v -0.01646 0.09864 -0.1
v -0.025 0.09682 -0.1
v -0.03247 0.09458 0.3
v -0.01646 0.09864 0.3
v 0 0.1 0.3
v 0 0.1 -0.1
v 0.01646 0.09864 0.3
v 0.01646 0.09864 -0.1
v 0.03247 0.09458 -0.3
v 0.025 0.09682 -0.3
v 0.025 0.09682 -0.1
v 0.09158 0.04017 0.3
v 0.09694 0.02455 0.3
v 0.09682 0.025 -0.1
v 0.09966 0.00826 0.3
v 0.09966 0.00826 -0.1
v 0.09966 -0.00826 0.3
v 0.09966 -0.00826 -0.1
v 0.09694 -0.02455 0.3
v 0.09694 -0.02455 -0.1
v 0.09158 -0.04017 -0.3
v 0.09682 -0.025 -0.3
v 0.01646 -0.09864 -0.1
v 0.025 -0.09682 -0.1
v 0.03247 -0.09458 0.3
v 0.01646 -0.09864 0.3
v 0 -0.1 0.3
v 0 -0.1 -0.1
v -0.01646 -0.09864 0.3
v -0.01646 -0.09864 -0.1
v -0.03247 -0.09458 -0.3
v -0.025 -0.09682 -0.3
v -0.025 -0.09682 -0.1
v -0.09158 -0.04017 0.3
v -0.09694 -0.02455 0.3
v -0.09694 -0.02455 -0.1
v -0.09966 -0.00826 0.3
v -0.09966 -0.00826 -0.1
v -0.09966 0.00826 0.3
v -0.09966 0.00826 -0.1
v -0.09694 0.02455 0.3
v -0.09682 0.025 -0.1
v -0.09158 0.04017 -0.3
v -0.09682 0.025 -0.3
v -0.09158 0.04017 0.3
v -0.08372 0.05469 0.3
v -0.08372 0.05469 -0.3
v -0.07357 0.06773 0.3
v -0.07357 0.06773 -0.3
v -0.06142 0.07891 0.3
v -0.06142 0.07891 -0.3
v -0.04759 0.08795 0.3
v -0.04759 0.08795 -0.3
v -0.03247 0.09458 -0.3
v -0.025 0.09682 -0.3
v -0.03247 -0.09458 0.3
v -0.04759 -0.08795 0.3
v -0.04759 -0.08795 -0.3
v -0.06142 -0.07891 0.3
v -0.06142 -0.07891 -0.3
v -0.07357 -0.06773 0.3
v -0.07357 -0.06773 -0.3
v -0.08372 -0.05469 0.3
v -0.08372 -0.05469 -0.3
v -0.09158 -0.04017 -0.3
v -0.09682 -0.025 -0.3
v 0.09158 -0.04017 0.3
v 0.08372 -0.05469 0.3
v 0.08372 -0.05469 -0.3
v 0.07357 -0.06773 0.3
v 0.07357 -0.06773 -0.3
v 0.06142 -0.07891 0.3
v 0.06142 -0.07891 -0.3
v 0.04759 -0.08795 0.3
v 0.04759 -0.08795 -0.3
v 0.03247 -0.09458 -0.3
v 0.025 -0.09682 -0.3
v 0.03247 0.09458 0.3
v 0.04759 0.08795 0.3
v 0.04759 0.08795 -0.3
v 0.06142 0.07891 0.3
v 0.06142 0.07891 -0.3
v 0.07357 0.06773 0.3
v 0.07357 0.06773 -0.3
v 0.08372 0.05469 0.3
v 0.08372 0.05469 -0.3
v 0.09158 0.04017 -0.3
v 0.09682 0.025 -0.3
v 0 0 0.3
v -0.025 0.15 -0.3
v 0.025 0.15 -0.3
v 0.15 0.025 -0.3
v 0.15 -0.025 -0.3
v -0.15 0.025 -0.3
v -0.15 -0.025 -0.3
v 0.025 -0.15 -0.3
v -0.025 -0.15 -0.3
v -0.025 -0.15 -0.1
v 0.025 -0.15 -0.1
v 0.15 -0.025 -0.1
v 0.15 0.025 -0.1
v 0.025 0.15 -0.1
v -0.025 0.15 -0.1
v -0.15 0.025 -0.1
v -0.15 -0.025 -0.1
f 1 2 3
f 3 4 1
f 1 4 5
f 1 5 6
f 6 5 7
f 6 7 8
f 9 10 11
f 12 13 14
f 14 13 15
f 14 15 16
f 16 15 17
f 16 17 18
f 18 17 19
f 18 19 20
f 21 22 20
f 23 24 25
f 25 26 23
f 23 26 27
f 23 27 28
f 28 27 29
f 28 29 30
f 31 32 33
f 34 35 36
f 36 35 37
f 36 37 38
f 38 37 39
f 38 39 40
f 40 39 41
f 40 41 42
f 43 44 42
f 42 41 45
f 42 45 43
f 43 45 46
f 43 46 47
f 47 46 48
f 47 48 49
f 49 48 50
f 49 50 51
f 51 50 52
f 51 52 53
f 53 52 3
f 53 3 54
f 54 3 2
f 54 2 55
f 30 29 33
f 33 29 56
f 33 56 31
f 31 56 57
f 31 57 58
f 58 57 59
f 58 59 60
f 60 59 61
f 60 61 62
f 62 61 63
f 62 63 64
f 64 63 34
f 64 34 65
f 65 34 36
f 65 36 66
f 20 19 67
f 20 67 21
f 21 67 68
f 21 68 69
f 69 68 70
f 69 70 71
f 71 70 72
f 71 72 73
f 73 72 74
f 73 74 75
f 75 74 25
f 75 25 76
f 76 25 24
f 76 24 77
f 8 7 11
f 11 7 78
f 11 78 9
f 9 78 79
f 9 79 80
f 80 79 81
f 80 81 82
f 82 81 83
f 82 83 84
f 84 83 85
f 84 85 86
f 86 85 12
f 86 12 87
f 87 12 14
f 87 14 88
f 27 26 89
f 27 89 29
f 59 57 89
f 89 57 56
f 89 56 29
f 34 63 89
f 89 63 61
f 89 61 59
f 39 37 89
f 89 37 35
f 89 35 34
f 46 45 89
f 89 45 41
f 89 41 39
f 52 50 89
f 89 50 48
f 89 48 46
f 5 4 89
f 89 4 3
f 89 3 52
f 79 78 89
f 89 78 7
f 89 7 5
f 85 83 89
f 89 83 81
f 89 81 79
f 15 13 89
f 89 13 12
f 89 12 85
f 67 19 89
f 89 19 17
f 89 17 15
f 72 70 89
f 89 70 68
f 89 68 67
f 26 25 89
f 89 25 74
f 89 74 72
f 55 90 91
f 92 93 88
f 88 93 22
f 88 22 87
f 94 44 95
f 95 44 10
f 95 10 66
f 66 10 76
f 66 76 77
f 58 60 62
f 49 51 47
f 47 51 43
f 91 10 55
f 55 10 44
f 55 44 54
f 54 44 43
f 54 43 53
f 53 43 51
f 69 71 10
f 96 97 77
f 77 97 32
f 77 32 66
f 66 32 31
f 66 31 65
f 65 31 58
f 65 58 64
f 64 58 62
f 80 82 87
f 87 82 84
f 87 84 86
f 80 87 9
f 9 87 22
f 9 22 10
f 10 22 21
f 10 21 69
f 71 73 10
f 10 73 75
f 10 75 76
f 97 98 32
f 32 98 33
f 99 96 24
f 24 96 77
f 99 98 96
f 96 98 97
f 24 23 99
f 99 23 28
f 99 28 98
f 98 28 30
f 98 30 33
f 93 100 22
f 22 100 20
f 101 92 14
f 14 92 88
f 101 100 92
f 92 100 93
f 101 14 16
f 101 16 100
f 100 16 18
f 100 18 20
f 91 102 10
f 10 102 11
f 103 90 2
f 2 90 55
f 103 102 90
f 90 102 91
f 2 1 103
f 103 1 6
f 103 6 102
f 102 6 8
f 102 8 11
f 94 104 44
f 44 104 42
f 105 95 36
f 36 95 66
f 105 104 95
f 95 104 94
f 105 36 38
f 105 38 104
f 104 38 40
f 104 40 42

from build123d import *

# Parameters (mm, degrees)
SKETCH3_R           = 0.1
BOSS_EXTRUDE1_DEPTH = 0.3
SKETCH4_W           = 0.1
SKETCH4_H           = 0.05
SKETCH4_W_2         = 0.05
SKETCH4_H_2         = 0.1
BOSS_EXTRUDE2_DEPTH = 0.2


with BuildPart() as part:
    # Sketch3 → Boss-Extrude1 (new, symmetric)
    with BuildSketch(Plane.XY):
        Circle(SKETCH3_R)
    extrude(amount=BOSS_EXTRUDE1_DEPTH, both=True)

    # Sketch4 → Boss-Extrude2 (add)
    with BuildSketch(Plane(origin=(0, 0, -0.3), x_dir=(-1, 0, 0), z_dir=(0, 0, -1))):
        with Locations((-0.1, 0)):
            Rectangle(SKETCH4_W, SKETCH4_H)
        with Locations((0, 0.1)):
            Rectangle(SKETCH4_W_2, SKETCH4_H_2)
        with Locations((0.1, 0)):
            Rectangle(SKETCH4_W, SKETCH4_H)
        with Locations((0, -0.1)):
            Rectangle(SKETCH4_W_2, SKETCH4_H_2)
    extrude(amount=-BOSS_EXTRUDE2_DEPTH)


solid = part.part
